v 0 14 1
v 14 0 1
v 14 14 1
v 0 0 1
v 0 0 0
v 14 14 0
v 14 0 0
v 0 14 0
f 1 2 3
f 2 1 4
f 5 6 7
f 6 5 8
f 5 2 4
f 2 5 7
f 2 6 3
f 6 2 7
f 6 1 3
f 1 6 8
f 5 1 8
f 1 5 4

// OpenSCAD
/* Warning, this is a very basic generator with a lot of approximation 
input data : [TQFP, VHX, 14x14x1mm, 64, , B, C04-00066B]
generated by com.zoubworld.electronics.cad.model3d.Basic
Date : Sun Feb 15 10:50:48 CET 2026
*/

//body
color("black")
translate([0,0,0])
cube([14.0,14.0,1.0], center=false);
